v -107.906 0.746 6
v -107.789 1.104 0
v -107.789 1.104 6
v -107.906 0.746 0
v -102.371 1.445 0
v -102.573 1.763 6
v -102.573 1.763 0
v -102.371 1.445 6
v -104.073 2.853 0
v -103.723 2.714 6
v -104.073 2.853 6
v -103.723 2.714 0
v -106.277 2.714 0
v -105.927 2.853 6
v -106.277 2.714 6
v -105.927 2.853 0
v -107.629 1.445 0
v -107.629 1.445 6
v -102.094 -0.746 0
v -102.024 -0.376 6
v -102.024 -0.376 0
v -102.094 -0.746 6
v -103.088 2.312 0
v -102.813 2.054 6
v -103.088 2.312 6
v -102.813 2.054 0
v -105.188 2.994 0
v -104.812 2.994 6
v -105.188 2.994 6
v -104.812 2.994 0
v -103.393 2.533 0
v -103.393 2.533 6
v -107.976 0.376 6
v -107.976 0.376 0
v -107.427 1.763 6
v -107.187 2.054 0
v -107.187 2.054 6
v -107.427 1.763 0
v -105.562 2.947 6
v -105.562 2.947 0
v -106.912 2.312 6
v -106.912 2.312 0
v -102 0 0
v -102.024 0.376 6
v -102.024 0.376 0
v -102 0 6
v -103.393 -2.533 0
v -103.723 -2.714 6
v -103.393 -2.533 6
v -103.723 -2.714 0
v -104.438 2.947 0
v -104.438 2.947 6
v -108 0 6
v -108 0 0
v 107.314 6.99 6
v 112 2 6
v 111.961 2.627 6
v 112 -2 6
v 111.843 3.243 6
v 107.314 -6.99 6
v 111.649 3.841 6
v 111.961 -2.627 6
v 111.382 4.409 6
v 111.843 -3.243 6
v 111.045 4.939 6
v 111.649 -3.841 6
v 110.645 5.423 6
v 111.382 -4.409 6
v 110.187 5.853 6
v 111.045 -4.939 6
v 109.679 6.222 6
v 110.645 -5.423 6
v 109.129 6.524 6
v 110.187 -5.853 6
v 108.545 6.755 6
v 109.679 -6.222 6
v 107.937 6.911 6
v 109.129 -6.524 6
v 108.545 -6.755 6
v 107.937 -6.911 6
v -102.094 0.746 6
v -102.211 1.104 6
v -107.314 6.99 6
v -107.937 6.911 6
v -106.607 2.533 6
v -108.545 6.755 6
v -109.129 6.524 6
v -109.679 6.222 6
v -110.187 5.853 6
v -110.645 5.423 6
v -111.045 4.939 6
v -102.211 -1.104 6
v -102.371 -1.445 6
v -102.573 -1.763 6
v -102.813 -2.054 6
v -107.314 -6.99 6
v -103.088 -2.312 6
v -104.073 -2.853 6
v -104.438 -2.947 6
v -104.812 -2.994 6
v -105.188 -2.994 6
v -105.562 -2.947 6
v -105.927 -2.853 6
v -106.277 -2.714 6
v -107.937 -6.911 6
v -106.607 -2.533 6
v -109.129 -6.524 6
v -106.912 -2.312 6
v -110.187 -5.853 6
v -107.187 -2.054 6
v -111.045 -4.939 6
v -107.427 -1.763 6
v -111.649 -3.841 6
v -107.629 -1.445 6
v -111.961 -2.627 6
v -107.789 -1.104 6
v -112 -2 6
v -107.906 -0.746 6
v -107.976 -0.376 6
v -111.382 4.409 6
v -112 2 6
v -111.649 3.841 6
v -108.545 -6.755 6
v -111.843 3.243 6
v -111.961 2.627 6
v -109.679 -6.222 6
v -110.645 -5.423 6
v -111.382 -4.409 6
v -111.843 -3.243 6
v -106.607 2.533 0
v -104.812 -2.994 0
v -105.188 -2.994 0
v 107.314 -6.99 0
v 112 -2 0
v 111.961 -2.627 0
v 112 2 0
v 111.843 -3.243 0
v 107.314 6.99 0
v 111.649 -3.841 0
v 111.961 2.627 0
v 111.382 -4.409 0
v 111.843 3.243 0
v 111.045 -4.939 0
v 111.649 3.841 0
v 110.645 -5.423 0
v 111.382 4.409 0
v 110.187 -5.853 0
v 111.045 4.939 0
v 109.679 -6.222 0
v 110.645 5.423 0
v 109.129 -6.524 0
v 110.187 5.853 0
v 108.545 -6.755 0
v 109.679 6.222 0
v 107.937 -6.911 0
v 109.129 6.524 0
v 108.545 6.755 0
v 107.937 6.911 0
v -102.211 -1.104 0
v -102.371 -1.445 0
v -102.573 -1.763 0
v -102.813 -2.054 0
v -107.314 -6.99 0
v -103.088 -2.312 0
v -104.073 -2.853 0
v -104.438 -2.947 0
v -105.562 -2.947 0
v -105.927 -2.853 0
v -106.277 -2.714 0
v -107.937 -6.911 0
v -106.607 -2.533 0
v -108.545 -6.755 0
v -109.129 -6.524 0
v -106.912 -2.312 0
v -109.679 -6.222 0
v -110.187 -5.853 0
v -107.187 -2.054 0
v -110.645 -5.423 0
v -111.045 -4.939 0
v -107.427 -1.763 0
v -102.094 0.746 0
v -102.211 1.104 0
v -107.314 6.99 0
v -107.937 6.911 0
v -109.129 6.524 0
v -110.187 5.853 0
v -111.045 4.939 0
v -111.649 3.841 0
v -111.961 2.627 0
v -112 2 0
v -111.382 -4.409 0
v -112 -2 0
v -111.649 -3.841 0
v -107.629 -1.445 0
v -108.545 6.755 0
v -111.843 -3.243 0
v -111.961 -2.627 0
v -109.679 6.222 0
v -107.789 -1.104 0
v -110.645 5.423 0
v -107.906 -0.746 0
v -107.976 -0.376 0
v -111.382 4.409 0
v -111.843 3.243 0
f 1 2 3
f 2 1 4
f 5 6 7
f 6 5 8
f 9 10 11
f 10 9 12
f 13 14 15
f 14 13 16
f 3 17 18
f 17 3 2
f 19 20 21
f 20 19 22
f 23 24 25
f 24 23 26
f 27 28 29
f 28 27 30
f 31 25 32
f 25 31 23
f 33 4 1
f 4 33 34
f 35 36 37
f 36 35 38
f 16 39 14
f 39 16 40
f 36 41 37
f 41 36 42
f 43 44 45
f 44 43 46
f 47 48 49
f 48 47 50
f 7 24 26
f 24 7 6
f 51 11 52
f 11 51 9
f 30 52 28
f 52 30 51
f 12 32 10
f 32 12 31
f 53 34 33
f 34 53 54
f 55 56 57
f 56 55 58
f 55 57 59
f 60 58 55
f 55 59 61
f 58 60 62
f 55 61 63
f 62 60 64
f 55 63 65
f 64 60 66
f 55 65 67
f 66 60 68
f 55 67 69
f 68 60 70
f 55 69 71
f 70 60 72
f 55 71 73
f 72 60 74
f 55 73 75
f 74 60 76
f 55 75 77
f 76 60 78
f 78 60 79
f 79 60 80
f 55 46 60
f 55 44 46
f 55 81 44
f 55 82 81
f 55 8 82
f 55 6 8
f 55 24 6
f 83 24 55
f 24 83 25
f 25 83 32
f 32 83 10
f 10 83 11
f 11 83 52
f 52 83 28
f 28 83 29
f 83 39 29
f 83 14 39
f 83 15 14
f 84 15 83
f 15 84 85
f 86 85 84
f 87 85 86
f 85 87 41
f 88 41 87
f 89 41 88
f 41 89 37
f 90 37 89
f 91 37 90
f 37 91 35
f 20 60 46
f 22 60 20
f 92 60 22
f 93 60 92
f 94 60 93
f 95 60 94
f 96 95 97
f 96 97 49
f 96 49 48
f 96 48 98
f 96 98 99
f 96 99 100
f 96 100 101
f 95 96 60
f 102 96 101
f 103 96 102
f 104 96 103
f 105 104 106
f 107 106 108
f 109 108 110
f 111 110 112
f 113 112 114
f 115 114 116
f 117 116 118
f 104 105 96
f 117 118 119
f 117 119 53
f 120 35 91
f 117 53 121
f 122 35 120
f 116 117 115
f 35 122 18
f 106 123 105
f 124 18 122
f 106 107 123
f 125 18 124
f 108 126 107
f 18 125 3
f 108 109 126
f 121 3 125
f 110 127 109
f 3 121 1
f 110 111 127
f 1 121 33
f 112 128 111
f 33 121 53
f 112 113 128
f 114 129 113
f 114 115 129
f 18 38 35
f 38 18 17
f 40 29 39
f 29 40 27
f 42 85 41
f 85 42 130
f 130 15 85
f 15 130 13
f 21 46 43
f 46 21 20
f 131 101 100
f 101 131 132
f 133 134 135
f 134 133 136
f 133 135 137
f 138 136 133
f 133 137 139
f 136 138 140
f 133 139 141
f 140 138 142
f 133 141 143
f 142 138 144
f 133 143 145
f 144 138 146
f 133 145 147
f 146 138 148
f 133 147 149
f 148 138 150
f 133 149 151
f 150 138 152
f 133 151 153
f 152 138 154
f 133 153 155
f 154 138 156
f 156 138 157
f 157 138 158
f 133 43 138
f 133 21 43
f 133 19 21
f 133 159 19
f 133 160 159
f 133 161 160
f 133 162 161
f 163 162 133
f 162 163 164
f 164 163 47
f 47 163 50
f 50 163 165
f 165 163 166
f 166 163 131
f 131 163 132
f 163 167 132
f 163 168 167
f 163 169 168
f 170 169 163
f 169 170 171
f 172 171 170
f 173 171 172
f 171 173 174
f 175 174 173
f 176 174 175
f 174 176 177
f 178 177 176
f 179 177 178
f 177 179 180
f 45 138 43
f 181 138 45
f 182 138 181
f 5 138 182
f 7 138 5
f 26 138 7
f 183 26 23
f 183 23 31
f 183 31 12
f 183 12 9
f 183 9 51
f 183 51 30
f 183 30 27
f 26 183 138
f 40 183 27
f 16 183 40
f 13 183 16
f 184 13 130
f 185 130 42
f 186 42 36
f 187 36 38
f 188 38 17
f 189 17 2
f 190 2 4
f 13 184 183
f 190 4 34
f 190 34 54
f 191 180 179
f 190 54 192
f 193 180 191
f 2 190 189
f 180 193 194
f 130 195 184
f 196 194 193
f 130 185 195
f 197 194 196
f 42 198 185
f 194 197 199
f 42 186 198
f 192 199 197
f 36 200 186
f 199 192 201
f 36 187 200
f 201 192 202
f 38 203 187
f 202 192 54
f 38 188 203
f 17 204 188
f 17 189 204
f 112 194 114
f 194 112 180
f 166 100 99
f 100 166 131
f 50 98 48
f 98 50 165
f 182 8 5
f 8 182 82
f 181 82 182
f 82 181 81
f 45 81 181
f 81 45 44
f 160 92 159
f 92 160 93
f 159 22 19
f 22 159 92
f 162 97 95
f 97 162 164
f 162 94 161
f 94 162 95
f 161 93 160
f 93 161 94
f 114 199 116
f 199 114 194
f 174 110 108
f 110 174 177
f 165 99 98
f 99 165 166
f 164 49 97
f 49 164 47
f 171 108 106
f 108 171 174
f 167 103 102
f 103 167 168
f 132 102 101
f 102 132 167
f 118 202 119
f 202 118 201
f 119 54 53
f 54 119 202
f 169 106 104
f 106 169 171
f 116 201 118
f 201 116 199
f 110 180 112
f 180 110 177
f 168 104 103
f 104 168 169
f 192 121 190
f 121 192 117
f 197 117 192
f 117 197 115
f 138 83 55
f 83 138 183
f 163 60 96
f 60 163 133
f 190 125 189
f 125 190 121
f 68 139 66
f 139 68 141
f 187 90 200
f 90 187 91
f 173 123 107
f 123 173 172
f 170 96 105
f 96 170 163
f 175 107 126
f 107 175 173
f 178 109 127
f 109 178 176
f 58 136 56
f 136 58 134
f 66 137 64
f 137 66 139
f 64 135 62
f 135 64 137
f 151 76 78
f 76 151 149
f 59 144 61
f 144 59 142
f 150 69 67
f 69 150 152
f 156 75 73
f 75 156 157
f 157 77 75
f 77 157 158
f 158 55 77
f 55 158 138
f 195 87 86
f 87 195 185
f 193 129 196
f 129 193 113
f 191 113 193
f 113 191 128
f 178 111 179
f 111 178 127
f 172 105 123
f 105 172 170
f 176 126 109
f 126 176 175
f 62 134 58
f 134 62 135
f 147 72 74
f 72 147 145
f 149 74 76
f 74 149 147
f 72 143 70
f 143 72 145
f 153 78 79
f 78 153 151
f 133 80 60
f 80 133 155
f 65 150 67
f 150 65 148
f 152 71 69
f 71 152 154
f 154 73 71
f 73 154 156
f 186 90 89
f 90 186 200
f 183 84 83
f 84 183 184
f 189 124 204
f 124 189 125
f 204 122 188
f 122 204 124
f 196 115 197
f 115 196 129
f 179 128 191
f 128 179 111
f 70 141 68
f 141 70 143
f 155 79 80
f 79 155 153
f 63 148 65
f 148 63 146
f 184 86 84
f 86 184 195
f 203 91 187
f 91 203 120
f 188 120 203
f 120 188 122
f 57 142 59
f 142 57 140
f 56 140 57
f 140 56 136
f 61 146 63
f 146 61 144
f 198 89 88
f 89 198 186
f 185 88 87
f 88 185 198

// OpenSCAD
$fn = 50;


difference() {
	union() {
		hull() {
			translate(v = [-107.0000000000, 2.0000000000, 0]) {
				cylinder(h = 6, r = 5);
			}
			translate(v = [107.0000000000, 2.0000000000, 0]) {
				cylinder(h = 6, r = 5);
			}
			translate(v = [-107.0000000000, -2.0000000000, 0]) {
				cylinder(h = 6, r = 5);
			}
			translate(v = [107.0000000000, -2.0000000000, 0]) {
				cylinder(h = 6, r = 5);
			}
		}
	}
	union() {
		translate(v = [-105.0000000000, 0.0000000000, 0]) {
			cylinder(h = 6, r = 3.0000000000);
		}
		translate(v = [-105.0000000000, 0.0000000000, 0]) {
			cylinder(h = 6, r = 1.5000000000);
		}
		translate(v = [-105.0000000000, 0.0000000000, 0]) {
			cylinder(h = 6, r = 1.5000000000);
		}
		translate(v = [-105.0000000000, 0.0000000000, 0]) {
			cylinder(h = 6, r = 1.5000000000);
		}
	}
}
